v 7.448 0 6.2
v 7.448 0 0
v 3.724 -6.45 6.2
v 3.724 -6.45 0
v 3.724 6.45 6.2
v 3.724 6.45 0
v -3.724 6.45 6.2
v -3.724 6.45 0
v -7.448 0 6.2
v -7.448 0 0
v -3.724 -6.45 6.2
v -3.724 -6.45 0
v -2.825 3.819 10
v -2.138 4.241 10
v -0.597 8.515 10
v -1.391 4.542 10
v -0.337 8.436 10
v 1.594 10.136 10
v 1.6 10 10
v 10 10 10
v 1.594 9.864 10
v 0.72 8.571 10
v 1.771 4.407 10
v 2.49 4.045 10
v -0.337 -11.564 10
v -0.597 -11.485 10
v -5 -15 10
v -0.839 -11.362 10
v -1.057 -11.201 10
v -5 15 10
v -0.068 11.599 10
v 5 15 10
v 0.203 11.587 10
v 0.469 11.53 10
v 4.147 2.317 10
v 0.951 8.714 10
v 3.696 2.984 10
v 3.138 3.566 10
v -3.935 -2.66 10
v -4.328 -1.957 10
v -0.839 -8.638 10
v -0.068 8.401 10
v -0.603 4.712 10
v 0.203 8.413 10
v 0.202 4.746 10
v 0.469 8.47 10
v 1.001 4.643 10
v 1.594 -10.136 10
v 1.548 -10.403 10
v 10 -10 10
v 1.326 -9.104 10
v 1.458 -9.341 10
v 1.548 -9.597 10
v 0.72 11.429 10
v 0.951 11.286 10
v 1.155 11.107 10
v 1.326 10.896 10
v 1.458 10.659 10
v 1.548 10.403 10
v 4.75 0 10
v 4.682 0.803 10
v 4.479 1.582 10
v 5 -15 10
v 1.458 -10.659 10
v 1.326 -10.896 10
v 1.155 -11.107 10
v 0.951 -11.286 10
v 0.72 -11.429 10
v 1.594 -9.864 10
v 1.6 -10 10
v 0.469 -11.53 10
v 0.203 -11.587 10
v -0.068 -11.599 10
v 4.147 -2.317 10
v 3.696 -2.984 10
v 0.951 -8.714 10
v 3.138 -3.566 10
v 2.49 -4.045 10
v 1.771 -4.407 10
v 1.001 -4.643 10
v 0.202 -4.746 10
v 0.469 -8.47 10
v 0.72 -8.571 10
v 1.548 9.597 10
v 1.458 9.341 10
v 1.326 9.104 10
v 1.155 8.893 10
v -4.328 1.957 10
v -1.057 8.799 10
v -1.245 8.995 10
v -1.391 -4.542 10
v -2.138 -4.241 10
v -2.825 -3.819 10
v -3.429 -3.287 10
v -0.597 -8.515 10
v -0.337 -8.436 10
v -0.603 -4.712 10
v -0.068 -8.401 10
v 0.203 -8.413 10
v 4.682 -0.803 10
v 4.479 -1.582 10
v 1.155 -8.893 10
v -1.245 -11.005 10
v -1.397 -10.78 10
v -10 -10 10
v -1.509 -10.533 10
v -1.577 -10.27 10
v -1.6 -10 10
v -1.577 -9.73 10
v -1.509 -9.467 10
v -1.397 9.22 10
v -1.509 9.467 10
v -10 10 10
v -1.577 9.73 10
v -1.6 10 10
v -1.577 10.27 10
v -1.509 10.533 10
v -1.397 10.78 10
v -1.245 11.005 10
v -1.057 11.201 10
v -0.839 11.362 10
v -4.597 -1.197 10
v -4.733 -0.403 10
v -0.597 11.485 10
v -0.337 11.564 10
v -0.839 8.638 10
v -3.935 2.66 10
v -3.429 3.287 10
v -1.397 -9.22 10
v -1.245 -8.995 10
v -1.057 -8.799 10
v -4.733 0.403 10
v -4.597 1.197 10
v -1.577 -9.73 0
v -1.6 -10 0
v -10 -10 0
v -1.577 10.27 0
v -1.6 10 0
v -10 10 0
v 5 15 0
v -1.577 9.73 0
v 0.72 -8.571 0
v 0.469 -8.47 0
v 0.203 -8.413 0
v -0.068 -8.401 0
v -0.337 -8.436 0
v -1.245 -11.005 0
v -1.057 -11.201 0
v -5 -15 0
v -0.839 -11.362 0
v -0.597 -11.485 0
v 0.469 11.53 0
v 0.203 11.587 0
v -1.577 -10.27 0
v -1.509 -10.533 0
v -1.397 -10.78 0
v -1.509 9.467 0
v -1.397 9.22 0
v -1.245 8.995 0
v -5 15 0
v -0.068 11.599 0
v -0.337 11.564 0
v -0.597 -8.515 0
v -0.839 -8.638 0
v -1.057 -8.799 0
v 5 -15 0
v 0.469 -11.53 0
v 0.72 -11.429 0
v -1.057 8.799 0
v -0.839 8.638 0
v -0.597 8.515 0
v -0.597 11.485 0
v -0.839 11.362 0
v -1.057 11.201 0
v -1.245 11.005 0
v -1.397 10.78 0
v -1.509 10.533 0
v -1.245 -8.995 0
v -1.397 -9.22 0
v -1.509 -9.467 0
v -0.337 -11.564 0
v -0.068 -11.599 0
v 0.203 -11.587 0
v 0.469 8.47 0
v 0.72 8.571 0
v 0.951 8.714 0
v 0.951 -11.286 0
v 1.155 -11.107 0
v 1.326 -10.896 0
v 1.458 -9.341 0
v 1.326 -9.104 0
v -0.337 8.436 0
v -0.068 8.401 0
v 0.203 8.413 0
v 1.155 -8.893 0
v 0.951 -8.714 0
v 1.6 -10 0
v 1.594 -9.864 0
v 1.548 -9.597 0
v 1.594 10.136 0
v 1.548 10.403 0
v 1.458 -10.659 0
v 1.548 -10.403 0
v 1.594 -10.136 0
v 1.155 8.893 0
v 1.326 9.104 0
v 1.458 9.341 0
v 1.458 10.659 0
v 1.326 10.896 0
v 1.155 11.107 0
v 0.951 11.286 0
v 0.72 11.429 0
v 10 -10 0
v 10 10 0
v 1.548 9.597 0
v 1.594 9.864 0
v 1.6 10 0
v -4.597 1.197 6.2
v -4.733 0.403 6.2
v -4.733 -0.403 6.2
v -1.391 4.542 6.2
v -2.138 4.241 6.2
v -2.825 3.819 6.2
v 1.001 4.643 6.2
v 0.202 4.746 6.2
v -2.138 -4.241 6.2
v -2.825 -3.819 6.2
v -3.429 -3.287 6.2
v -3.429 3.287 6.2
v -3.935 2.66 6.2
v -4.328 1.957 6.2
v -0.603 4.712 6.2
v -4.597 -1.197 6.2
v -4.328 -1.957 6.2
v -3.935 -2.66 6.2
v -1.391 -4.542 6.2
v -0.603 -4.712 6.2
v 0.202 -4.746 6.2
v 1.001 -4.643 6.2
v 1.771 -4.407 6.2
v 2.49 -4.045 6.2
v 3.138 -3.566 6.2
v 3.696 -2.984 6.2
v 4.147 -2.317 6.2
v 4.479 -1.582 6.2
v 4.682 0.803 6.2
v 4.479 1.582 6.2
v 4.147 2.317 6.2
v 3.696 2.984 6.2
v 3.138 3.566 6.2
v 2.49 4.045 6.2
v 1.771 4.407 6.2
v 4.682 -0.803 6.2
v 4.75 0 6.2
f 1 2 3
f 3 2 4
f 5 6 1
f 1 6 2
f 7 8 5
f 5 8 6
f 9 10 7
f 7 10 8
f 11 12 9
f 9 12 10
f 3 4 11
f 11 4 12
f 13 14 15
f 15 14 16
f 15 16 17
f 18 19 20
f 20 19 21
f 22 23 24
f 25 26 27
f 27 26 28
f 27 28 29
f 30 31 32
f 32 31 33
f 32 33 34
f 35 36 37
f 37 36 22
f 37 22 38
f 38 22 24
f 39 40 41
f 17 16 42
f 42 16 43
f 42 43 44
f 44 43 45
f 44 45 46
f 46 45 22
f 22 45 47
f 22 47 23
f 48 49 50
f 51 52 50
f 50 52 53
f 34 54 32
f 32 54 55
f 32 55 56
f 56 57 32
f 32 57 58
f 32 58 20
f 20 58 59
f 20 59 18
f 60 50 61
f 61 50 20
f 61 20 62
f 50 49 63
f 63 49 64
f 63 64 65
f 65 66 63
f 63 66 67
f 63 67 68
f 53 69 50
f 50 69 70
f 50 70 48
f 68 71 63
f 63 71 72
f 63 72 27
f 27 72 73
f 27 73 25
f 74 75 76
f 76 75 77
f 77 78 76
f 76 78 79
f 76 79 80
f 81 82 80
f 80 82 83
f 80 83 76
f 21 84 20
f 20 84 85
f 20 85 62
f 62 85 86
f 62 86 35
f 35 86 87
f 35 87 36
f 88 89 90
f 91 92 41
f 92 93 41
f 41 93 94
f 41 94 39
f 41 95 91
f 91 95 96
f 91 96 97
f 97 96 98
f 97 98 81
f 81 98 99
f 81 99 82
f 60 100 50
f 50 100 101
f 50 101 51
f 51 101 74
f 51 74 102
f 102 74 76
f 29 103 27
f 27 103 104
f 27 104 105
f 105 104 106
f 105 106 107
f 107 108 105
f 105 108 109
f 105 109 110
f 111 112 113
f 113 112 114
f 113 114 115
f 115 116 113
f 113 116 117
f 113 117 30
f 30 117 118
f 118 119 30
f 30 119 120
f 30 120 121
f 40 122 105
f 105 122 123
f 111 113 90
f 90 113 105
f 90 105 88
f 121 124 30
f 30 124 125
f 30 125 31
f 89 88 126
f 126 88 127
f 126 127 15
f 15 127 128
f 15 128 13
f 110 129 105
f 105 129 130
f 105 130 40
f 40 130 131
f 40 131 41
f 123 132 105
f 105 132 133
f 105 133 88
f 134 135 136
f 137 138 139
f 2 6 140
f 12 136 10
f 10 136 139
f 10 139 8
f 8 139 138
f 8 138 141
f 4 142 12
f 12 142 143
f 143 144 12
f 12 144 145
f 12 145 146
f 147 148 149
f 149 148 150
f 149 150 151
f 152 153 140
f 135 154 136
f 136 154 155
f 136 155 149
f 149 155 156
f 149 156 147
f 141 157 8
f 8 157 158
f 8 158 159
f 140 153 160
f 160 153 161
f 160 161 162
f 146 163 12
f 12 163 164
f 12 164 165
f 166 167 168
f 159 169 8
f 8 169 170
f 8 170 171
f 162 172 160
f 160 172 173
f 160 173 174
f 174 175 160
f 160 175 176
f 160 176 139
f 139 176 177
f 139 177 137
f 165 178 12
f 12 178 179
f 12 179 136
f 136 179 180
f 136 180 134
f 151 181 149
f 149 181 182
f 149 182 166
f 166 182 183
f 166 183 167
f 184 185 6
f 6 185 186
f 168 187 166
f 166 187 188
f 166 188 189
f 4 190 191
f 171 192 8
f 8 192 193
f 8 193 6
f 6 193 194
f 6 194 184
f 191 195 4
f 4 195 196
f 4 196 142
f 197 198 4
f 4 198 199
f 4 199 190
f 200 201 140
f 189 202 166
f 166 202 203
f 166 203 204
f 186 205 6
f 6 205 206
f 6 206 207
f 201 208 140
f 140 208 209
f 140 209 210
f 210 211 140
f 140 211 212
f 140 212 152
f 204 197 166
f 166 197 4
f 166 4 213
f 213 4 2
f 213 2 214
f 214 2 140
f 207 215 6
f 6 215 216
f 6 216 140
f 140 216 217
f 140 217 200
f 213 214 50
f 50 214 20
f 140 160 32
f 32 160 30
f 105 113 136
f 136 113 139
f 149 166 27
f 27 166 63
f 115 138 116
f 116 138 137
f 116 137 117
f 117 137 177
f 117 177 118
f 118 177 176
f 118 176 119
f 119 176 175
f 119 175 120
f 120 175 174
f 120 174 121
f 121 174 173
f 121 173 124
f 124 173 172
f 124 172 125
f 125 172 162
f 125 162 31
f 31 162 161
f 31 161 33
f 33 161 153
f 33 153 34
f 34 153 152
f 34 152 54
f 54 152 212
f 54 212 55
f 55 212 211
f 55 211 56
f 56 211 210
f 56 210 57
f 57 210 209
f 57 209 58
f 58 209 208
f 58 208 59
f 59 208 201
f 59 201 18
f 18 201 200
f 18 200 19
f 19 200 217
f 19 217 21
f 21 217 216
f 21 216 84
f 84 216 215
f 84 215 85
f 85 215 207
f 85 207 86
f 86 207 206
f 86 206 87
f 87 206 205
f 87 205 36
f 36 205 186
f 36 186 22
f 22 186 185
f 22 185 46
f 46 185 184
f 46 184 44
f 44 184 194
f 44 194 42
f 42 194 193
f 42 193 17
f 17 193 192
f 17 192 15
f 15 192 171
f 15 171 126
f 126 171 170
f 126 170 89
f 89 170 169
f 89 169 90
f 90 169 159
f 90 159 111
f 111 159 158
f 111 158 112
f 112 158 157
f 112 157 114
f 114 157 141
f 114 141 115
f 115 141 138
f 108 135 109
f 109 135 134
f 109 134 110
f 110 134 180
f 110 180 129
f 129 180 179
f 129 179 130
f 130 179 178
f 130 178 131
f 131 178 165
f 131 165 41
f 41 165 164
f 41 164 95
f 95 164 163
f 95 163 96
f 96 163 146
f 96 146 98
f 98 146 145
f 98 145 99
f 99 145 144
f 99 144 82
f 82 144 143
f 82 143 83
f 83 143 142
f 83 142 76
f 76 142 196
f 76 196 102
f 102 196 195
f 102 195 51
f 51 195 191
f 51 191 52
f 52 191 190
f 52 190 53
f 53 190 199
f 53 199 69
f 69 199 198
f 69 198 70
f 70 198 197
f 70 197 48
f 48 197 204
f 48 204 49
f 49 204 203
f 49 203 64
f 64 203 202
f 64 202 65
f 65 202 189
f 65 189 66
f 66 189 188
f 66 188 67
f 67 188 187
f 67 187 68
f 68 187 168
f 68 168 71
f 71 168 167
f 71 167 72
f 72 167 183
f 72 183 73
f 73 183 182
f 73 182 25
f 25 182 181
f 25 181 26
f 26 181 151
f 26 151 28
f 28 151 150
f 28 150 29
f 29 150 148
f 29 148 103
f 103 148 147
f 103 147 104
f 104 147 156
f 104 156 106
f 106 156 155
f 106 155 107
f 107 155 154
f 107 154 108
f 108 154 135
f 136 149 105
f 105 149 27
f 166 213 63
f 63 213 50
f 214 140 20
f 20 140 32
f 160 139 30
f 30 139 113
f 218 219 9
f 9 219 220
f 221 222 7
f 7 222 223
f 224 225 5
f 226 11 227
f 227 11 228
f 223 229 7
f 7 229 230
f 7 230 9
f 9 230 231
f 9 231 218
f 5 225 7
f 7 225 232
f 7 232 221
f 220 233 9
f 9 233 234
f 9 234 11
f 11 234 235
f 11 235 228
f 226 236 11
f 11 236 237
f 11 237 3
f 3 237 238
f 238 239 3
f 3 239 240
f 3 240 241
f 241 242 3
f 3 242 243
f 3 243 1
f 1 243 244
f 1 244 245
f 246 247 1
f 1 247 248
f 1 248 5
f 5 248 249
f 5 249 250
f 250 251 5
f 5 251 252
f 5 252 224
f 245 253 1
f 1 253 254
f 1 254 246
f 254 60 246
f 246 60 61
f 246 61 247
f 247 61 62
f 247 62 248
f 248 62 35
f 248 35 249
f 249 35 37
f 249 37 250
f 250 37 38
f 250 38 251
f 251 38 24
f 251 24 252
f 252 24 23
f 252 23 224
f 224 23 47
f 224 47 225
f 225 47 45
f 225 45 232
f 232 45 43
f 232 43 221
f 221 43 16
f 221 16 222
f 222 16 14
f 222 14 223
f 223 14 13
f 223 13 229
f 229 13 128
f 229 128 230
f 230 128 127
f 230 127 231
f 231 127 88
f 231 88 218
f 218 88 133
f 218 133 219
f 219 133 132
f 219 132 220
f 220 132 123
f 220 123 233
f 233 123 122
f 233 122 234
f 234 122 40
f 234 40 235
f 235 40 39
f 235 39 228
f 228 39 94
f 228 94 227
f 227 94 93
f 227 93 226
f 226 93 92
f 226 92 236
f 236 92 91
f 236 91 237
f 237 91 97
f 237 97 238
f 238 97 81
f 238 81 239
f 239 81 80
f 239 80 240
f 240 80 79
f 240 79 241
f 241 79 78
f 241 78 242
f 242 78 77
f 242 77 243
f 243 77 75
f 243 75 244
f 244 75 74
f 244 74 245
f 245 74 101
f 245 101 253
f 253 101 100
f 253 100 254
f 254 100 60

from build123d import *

# Parameters (mm, degrees)
SKETCH_1_W      = 20
SKETCH_1_H      = 30
SKETCH_1_R      = 1.6
EXTRUDE_1_DEPTH = 10
CHAMFER_1_SIZE  = 5
SKETCH_2_W      = 15
SKETCH_2_H      = 15
SKETCH_2_R      = 4.75
EXTRUDE_2_DEPTH = 3.8


with BuildPart() as part:
    # 草圖1 → 填料-伸長1 (new body)
    with BuildSketch(Plane.XY):
        Rectangle(SKETCH_1_W, SKETCH_1_H)
        with Locations((0, 10)):
            Circle(SKETCH_1_R, mode=Mode.SUBTRACT)
        with Locations((0, -10)):
            Circle(SKETCH_1_R, mode=Mode.SUBTRACT)
        Polygon((7.447818473, 0), (3.723909236, 6.45), (-3.723909236, 6.45), (-7.447818473, 0), (-3.723909236, -6.45), (3.723909236, -6.45), align=None, mode=Mode.SUBTRACT)
    extrude(amount=EXTRUDE_1_DEPTH)

    # 導角1
    chamfer_1_edges = [part.edges().sort_by_distance(p)[0] for p in [
        (10, -15, 5),
        (-10, -15, 5),
        (-10, 15, 5),
        (10, 15, 5),
    ]]
    chamfer(chamfer_1_edges, length=CHAMFER_1_SIZE)

    # 草圖2 → 填料-伸長2 (add)
    with BuildSketch(Plane.XY.offset(10)):
        Rectangle(SKETCH_2_W, SKETCH_2_H)
        Circle(SKETCH_2_R, mode=Mode.SUBTRACT)
    extrude(amount=-EXTRUDE_2_DEPTH)


solid = part.part
